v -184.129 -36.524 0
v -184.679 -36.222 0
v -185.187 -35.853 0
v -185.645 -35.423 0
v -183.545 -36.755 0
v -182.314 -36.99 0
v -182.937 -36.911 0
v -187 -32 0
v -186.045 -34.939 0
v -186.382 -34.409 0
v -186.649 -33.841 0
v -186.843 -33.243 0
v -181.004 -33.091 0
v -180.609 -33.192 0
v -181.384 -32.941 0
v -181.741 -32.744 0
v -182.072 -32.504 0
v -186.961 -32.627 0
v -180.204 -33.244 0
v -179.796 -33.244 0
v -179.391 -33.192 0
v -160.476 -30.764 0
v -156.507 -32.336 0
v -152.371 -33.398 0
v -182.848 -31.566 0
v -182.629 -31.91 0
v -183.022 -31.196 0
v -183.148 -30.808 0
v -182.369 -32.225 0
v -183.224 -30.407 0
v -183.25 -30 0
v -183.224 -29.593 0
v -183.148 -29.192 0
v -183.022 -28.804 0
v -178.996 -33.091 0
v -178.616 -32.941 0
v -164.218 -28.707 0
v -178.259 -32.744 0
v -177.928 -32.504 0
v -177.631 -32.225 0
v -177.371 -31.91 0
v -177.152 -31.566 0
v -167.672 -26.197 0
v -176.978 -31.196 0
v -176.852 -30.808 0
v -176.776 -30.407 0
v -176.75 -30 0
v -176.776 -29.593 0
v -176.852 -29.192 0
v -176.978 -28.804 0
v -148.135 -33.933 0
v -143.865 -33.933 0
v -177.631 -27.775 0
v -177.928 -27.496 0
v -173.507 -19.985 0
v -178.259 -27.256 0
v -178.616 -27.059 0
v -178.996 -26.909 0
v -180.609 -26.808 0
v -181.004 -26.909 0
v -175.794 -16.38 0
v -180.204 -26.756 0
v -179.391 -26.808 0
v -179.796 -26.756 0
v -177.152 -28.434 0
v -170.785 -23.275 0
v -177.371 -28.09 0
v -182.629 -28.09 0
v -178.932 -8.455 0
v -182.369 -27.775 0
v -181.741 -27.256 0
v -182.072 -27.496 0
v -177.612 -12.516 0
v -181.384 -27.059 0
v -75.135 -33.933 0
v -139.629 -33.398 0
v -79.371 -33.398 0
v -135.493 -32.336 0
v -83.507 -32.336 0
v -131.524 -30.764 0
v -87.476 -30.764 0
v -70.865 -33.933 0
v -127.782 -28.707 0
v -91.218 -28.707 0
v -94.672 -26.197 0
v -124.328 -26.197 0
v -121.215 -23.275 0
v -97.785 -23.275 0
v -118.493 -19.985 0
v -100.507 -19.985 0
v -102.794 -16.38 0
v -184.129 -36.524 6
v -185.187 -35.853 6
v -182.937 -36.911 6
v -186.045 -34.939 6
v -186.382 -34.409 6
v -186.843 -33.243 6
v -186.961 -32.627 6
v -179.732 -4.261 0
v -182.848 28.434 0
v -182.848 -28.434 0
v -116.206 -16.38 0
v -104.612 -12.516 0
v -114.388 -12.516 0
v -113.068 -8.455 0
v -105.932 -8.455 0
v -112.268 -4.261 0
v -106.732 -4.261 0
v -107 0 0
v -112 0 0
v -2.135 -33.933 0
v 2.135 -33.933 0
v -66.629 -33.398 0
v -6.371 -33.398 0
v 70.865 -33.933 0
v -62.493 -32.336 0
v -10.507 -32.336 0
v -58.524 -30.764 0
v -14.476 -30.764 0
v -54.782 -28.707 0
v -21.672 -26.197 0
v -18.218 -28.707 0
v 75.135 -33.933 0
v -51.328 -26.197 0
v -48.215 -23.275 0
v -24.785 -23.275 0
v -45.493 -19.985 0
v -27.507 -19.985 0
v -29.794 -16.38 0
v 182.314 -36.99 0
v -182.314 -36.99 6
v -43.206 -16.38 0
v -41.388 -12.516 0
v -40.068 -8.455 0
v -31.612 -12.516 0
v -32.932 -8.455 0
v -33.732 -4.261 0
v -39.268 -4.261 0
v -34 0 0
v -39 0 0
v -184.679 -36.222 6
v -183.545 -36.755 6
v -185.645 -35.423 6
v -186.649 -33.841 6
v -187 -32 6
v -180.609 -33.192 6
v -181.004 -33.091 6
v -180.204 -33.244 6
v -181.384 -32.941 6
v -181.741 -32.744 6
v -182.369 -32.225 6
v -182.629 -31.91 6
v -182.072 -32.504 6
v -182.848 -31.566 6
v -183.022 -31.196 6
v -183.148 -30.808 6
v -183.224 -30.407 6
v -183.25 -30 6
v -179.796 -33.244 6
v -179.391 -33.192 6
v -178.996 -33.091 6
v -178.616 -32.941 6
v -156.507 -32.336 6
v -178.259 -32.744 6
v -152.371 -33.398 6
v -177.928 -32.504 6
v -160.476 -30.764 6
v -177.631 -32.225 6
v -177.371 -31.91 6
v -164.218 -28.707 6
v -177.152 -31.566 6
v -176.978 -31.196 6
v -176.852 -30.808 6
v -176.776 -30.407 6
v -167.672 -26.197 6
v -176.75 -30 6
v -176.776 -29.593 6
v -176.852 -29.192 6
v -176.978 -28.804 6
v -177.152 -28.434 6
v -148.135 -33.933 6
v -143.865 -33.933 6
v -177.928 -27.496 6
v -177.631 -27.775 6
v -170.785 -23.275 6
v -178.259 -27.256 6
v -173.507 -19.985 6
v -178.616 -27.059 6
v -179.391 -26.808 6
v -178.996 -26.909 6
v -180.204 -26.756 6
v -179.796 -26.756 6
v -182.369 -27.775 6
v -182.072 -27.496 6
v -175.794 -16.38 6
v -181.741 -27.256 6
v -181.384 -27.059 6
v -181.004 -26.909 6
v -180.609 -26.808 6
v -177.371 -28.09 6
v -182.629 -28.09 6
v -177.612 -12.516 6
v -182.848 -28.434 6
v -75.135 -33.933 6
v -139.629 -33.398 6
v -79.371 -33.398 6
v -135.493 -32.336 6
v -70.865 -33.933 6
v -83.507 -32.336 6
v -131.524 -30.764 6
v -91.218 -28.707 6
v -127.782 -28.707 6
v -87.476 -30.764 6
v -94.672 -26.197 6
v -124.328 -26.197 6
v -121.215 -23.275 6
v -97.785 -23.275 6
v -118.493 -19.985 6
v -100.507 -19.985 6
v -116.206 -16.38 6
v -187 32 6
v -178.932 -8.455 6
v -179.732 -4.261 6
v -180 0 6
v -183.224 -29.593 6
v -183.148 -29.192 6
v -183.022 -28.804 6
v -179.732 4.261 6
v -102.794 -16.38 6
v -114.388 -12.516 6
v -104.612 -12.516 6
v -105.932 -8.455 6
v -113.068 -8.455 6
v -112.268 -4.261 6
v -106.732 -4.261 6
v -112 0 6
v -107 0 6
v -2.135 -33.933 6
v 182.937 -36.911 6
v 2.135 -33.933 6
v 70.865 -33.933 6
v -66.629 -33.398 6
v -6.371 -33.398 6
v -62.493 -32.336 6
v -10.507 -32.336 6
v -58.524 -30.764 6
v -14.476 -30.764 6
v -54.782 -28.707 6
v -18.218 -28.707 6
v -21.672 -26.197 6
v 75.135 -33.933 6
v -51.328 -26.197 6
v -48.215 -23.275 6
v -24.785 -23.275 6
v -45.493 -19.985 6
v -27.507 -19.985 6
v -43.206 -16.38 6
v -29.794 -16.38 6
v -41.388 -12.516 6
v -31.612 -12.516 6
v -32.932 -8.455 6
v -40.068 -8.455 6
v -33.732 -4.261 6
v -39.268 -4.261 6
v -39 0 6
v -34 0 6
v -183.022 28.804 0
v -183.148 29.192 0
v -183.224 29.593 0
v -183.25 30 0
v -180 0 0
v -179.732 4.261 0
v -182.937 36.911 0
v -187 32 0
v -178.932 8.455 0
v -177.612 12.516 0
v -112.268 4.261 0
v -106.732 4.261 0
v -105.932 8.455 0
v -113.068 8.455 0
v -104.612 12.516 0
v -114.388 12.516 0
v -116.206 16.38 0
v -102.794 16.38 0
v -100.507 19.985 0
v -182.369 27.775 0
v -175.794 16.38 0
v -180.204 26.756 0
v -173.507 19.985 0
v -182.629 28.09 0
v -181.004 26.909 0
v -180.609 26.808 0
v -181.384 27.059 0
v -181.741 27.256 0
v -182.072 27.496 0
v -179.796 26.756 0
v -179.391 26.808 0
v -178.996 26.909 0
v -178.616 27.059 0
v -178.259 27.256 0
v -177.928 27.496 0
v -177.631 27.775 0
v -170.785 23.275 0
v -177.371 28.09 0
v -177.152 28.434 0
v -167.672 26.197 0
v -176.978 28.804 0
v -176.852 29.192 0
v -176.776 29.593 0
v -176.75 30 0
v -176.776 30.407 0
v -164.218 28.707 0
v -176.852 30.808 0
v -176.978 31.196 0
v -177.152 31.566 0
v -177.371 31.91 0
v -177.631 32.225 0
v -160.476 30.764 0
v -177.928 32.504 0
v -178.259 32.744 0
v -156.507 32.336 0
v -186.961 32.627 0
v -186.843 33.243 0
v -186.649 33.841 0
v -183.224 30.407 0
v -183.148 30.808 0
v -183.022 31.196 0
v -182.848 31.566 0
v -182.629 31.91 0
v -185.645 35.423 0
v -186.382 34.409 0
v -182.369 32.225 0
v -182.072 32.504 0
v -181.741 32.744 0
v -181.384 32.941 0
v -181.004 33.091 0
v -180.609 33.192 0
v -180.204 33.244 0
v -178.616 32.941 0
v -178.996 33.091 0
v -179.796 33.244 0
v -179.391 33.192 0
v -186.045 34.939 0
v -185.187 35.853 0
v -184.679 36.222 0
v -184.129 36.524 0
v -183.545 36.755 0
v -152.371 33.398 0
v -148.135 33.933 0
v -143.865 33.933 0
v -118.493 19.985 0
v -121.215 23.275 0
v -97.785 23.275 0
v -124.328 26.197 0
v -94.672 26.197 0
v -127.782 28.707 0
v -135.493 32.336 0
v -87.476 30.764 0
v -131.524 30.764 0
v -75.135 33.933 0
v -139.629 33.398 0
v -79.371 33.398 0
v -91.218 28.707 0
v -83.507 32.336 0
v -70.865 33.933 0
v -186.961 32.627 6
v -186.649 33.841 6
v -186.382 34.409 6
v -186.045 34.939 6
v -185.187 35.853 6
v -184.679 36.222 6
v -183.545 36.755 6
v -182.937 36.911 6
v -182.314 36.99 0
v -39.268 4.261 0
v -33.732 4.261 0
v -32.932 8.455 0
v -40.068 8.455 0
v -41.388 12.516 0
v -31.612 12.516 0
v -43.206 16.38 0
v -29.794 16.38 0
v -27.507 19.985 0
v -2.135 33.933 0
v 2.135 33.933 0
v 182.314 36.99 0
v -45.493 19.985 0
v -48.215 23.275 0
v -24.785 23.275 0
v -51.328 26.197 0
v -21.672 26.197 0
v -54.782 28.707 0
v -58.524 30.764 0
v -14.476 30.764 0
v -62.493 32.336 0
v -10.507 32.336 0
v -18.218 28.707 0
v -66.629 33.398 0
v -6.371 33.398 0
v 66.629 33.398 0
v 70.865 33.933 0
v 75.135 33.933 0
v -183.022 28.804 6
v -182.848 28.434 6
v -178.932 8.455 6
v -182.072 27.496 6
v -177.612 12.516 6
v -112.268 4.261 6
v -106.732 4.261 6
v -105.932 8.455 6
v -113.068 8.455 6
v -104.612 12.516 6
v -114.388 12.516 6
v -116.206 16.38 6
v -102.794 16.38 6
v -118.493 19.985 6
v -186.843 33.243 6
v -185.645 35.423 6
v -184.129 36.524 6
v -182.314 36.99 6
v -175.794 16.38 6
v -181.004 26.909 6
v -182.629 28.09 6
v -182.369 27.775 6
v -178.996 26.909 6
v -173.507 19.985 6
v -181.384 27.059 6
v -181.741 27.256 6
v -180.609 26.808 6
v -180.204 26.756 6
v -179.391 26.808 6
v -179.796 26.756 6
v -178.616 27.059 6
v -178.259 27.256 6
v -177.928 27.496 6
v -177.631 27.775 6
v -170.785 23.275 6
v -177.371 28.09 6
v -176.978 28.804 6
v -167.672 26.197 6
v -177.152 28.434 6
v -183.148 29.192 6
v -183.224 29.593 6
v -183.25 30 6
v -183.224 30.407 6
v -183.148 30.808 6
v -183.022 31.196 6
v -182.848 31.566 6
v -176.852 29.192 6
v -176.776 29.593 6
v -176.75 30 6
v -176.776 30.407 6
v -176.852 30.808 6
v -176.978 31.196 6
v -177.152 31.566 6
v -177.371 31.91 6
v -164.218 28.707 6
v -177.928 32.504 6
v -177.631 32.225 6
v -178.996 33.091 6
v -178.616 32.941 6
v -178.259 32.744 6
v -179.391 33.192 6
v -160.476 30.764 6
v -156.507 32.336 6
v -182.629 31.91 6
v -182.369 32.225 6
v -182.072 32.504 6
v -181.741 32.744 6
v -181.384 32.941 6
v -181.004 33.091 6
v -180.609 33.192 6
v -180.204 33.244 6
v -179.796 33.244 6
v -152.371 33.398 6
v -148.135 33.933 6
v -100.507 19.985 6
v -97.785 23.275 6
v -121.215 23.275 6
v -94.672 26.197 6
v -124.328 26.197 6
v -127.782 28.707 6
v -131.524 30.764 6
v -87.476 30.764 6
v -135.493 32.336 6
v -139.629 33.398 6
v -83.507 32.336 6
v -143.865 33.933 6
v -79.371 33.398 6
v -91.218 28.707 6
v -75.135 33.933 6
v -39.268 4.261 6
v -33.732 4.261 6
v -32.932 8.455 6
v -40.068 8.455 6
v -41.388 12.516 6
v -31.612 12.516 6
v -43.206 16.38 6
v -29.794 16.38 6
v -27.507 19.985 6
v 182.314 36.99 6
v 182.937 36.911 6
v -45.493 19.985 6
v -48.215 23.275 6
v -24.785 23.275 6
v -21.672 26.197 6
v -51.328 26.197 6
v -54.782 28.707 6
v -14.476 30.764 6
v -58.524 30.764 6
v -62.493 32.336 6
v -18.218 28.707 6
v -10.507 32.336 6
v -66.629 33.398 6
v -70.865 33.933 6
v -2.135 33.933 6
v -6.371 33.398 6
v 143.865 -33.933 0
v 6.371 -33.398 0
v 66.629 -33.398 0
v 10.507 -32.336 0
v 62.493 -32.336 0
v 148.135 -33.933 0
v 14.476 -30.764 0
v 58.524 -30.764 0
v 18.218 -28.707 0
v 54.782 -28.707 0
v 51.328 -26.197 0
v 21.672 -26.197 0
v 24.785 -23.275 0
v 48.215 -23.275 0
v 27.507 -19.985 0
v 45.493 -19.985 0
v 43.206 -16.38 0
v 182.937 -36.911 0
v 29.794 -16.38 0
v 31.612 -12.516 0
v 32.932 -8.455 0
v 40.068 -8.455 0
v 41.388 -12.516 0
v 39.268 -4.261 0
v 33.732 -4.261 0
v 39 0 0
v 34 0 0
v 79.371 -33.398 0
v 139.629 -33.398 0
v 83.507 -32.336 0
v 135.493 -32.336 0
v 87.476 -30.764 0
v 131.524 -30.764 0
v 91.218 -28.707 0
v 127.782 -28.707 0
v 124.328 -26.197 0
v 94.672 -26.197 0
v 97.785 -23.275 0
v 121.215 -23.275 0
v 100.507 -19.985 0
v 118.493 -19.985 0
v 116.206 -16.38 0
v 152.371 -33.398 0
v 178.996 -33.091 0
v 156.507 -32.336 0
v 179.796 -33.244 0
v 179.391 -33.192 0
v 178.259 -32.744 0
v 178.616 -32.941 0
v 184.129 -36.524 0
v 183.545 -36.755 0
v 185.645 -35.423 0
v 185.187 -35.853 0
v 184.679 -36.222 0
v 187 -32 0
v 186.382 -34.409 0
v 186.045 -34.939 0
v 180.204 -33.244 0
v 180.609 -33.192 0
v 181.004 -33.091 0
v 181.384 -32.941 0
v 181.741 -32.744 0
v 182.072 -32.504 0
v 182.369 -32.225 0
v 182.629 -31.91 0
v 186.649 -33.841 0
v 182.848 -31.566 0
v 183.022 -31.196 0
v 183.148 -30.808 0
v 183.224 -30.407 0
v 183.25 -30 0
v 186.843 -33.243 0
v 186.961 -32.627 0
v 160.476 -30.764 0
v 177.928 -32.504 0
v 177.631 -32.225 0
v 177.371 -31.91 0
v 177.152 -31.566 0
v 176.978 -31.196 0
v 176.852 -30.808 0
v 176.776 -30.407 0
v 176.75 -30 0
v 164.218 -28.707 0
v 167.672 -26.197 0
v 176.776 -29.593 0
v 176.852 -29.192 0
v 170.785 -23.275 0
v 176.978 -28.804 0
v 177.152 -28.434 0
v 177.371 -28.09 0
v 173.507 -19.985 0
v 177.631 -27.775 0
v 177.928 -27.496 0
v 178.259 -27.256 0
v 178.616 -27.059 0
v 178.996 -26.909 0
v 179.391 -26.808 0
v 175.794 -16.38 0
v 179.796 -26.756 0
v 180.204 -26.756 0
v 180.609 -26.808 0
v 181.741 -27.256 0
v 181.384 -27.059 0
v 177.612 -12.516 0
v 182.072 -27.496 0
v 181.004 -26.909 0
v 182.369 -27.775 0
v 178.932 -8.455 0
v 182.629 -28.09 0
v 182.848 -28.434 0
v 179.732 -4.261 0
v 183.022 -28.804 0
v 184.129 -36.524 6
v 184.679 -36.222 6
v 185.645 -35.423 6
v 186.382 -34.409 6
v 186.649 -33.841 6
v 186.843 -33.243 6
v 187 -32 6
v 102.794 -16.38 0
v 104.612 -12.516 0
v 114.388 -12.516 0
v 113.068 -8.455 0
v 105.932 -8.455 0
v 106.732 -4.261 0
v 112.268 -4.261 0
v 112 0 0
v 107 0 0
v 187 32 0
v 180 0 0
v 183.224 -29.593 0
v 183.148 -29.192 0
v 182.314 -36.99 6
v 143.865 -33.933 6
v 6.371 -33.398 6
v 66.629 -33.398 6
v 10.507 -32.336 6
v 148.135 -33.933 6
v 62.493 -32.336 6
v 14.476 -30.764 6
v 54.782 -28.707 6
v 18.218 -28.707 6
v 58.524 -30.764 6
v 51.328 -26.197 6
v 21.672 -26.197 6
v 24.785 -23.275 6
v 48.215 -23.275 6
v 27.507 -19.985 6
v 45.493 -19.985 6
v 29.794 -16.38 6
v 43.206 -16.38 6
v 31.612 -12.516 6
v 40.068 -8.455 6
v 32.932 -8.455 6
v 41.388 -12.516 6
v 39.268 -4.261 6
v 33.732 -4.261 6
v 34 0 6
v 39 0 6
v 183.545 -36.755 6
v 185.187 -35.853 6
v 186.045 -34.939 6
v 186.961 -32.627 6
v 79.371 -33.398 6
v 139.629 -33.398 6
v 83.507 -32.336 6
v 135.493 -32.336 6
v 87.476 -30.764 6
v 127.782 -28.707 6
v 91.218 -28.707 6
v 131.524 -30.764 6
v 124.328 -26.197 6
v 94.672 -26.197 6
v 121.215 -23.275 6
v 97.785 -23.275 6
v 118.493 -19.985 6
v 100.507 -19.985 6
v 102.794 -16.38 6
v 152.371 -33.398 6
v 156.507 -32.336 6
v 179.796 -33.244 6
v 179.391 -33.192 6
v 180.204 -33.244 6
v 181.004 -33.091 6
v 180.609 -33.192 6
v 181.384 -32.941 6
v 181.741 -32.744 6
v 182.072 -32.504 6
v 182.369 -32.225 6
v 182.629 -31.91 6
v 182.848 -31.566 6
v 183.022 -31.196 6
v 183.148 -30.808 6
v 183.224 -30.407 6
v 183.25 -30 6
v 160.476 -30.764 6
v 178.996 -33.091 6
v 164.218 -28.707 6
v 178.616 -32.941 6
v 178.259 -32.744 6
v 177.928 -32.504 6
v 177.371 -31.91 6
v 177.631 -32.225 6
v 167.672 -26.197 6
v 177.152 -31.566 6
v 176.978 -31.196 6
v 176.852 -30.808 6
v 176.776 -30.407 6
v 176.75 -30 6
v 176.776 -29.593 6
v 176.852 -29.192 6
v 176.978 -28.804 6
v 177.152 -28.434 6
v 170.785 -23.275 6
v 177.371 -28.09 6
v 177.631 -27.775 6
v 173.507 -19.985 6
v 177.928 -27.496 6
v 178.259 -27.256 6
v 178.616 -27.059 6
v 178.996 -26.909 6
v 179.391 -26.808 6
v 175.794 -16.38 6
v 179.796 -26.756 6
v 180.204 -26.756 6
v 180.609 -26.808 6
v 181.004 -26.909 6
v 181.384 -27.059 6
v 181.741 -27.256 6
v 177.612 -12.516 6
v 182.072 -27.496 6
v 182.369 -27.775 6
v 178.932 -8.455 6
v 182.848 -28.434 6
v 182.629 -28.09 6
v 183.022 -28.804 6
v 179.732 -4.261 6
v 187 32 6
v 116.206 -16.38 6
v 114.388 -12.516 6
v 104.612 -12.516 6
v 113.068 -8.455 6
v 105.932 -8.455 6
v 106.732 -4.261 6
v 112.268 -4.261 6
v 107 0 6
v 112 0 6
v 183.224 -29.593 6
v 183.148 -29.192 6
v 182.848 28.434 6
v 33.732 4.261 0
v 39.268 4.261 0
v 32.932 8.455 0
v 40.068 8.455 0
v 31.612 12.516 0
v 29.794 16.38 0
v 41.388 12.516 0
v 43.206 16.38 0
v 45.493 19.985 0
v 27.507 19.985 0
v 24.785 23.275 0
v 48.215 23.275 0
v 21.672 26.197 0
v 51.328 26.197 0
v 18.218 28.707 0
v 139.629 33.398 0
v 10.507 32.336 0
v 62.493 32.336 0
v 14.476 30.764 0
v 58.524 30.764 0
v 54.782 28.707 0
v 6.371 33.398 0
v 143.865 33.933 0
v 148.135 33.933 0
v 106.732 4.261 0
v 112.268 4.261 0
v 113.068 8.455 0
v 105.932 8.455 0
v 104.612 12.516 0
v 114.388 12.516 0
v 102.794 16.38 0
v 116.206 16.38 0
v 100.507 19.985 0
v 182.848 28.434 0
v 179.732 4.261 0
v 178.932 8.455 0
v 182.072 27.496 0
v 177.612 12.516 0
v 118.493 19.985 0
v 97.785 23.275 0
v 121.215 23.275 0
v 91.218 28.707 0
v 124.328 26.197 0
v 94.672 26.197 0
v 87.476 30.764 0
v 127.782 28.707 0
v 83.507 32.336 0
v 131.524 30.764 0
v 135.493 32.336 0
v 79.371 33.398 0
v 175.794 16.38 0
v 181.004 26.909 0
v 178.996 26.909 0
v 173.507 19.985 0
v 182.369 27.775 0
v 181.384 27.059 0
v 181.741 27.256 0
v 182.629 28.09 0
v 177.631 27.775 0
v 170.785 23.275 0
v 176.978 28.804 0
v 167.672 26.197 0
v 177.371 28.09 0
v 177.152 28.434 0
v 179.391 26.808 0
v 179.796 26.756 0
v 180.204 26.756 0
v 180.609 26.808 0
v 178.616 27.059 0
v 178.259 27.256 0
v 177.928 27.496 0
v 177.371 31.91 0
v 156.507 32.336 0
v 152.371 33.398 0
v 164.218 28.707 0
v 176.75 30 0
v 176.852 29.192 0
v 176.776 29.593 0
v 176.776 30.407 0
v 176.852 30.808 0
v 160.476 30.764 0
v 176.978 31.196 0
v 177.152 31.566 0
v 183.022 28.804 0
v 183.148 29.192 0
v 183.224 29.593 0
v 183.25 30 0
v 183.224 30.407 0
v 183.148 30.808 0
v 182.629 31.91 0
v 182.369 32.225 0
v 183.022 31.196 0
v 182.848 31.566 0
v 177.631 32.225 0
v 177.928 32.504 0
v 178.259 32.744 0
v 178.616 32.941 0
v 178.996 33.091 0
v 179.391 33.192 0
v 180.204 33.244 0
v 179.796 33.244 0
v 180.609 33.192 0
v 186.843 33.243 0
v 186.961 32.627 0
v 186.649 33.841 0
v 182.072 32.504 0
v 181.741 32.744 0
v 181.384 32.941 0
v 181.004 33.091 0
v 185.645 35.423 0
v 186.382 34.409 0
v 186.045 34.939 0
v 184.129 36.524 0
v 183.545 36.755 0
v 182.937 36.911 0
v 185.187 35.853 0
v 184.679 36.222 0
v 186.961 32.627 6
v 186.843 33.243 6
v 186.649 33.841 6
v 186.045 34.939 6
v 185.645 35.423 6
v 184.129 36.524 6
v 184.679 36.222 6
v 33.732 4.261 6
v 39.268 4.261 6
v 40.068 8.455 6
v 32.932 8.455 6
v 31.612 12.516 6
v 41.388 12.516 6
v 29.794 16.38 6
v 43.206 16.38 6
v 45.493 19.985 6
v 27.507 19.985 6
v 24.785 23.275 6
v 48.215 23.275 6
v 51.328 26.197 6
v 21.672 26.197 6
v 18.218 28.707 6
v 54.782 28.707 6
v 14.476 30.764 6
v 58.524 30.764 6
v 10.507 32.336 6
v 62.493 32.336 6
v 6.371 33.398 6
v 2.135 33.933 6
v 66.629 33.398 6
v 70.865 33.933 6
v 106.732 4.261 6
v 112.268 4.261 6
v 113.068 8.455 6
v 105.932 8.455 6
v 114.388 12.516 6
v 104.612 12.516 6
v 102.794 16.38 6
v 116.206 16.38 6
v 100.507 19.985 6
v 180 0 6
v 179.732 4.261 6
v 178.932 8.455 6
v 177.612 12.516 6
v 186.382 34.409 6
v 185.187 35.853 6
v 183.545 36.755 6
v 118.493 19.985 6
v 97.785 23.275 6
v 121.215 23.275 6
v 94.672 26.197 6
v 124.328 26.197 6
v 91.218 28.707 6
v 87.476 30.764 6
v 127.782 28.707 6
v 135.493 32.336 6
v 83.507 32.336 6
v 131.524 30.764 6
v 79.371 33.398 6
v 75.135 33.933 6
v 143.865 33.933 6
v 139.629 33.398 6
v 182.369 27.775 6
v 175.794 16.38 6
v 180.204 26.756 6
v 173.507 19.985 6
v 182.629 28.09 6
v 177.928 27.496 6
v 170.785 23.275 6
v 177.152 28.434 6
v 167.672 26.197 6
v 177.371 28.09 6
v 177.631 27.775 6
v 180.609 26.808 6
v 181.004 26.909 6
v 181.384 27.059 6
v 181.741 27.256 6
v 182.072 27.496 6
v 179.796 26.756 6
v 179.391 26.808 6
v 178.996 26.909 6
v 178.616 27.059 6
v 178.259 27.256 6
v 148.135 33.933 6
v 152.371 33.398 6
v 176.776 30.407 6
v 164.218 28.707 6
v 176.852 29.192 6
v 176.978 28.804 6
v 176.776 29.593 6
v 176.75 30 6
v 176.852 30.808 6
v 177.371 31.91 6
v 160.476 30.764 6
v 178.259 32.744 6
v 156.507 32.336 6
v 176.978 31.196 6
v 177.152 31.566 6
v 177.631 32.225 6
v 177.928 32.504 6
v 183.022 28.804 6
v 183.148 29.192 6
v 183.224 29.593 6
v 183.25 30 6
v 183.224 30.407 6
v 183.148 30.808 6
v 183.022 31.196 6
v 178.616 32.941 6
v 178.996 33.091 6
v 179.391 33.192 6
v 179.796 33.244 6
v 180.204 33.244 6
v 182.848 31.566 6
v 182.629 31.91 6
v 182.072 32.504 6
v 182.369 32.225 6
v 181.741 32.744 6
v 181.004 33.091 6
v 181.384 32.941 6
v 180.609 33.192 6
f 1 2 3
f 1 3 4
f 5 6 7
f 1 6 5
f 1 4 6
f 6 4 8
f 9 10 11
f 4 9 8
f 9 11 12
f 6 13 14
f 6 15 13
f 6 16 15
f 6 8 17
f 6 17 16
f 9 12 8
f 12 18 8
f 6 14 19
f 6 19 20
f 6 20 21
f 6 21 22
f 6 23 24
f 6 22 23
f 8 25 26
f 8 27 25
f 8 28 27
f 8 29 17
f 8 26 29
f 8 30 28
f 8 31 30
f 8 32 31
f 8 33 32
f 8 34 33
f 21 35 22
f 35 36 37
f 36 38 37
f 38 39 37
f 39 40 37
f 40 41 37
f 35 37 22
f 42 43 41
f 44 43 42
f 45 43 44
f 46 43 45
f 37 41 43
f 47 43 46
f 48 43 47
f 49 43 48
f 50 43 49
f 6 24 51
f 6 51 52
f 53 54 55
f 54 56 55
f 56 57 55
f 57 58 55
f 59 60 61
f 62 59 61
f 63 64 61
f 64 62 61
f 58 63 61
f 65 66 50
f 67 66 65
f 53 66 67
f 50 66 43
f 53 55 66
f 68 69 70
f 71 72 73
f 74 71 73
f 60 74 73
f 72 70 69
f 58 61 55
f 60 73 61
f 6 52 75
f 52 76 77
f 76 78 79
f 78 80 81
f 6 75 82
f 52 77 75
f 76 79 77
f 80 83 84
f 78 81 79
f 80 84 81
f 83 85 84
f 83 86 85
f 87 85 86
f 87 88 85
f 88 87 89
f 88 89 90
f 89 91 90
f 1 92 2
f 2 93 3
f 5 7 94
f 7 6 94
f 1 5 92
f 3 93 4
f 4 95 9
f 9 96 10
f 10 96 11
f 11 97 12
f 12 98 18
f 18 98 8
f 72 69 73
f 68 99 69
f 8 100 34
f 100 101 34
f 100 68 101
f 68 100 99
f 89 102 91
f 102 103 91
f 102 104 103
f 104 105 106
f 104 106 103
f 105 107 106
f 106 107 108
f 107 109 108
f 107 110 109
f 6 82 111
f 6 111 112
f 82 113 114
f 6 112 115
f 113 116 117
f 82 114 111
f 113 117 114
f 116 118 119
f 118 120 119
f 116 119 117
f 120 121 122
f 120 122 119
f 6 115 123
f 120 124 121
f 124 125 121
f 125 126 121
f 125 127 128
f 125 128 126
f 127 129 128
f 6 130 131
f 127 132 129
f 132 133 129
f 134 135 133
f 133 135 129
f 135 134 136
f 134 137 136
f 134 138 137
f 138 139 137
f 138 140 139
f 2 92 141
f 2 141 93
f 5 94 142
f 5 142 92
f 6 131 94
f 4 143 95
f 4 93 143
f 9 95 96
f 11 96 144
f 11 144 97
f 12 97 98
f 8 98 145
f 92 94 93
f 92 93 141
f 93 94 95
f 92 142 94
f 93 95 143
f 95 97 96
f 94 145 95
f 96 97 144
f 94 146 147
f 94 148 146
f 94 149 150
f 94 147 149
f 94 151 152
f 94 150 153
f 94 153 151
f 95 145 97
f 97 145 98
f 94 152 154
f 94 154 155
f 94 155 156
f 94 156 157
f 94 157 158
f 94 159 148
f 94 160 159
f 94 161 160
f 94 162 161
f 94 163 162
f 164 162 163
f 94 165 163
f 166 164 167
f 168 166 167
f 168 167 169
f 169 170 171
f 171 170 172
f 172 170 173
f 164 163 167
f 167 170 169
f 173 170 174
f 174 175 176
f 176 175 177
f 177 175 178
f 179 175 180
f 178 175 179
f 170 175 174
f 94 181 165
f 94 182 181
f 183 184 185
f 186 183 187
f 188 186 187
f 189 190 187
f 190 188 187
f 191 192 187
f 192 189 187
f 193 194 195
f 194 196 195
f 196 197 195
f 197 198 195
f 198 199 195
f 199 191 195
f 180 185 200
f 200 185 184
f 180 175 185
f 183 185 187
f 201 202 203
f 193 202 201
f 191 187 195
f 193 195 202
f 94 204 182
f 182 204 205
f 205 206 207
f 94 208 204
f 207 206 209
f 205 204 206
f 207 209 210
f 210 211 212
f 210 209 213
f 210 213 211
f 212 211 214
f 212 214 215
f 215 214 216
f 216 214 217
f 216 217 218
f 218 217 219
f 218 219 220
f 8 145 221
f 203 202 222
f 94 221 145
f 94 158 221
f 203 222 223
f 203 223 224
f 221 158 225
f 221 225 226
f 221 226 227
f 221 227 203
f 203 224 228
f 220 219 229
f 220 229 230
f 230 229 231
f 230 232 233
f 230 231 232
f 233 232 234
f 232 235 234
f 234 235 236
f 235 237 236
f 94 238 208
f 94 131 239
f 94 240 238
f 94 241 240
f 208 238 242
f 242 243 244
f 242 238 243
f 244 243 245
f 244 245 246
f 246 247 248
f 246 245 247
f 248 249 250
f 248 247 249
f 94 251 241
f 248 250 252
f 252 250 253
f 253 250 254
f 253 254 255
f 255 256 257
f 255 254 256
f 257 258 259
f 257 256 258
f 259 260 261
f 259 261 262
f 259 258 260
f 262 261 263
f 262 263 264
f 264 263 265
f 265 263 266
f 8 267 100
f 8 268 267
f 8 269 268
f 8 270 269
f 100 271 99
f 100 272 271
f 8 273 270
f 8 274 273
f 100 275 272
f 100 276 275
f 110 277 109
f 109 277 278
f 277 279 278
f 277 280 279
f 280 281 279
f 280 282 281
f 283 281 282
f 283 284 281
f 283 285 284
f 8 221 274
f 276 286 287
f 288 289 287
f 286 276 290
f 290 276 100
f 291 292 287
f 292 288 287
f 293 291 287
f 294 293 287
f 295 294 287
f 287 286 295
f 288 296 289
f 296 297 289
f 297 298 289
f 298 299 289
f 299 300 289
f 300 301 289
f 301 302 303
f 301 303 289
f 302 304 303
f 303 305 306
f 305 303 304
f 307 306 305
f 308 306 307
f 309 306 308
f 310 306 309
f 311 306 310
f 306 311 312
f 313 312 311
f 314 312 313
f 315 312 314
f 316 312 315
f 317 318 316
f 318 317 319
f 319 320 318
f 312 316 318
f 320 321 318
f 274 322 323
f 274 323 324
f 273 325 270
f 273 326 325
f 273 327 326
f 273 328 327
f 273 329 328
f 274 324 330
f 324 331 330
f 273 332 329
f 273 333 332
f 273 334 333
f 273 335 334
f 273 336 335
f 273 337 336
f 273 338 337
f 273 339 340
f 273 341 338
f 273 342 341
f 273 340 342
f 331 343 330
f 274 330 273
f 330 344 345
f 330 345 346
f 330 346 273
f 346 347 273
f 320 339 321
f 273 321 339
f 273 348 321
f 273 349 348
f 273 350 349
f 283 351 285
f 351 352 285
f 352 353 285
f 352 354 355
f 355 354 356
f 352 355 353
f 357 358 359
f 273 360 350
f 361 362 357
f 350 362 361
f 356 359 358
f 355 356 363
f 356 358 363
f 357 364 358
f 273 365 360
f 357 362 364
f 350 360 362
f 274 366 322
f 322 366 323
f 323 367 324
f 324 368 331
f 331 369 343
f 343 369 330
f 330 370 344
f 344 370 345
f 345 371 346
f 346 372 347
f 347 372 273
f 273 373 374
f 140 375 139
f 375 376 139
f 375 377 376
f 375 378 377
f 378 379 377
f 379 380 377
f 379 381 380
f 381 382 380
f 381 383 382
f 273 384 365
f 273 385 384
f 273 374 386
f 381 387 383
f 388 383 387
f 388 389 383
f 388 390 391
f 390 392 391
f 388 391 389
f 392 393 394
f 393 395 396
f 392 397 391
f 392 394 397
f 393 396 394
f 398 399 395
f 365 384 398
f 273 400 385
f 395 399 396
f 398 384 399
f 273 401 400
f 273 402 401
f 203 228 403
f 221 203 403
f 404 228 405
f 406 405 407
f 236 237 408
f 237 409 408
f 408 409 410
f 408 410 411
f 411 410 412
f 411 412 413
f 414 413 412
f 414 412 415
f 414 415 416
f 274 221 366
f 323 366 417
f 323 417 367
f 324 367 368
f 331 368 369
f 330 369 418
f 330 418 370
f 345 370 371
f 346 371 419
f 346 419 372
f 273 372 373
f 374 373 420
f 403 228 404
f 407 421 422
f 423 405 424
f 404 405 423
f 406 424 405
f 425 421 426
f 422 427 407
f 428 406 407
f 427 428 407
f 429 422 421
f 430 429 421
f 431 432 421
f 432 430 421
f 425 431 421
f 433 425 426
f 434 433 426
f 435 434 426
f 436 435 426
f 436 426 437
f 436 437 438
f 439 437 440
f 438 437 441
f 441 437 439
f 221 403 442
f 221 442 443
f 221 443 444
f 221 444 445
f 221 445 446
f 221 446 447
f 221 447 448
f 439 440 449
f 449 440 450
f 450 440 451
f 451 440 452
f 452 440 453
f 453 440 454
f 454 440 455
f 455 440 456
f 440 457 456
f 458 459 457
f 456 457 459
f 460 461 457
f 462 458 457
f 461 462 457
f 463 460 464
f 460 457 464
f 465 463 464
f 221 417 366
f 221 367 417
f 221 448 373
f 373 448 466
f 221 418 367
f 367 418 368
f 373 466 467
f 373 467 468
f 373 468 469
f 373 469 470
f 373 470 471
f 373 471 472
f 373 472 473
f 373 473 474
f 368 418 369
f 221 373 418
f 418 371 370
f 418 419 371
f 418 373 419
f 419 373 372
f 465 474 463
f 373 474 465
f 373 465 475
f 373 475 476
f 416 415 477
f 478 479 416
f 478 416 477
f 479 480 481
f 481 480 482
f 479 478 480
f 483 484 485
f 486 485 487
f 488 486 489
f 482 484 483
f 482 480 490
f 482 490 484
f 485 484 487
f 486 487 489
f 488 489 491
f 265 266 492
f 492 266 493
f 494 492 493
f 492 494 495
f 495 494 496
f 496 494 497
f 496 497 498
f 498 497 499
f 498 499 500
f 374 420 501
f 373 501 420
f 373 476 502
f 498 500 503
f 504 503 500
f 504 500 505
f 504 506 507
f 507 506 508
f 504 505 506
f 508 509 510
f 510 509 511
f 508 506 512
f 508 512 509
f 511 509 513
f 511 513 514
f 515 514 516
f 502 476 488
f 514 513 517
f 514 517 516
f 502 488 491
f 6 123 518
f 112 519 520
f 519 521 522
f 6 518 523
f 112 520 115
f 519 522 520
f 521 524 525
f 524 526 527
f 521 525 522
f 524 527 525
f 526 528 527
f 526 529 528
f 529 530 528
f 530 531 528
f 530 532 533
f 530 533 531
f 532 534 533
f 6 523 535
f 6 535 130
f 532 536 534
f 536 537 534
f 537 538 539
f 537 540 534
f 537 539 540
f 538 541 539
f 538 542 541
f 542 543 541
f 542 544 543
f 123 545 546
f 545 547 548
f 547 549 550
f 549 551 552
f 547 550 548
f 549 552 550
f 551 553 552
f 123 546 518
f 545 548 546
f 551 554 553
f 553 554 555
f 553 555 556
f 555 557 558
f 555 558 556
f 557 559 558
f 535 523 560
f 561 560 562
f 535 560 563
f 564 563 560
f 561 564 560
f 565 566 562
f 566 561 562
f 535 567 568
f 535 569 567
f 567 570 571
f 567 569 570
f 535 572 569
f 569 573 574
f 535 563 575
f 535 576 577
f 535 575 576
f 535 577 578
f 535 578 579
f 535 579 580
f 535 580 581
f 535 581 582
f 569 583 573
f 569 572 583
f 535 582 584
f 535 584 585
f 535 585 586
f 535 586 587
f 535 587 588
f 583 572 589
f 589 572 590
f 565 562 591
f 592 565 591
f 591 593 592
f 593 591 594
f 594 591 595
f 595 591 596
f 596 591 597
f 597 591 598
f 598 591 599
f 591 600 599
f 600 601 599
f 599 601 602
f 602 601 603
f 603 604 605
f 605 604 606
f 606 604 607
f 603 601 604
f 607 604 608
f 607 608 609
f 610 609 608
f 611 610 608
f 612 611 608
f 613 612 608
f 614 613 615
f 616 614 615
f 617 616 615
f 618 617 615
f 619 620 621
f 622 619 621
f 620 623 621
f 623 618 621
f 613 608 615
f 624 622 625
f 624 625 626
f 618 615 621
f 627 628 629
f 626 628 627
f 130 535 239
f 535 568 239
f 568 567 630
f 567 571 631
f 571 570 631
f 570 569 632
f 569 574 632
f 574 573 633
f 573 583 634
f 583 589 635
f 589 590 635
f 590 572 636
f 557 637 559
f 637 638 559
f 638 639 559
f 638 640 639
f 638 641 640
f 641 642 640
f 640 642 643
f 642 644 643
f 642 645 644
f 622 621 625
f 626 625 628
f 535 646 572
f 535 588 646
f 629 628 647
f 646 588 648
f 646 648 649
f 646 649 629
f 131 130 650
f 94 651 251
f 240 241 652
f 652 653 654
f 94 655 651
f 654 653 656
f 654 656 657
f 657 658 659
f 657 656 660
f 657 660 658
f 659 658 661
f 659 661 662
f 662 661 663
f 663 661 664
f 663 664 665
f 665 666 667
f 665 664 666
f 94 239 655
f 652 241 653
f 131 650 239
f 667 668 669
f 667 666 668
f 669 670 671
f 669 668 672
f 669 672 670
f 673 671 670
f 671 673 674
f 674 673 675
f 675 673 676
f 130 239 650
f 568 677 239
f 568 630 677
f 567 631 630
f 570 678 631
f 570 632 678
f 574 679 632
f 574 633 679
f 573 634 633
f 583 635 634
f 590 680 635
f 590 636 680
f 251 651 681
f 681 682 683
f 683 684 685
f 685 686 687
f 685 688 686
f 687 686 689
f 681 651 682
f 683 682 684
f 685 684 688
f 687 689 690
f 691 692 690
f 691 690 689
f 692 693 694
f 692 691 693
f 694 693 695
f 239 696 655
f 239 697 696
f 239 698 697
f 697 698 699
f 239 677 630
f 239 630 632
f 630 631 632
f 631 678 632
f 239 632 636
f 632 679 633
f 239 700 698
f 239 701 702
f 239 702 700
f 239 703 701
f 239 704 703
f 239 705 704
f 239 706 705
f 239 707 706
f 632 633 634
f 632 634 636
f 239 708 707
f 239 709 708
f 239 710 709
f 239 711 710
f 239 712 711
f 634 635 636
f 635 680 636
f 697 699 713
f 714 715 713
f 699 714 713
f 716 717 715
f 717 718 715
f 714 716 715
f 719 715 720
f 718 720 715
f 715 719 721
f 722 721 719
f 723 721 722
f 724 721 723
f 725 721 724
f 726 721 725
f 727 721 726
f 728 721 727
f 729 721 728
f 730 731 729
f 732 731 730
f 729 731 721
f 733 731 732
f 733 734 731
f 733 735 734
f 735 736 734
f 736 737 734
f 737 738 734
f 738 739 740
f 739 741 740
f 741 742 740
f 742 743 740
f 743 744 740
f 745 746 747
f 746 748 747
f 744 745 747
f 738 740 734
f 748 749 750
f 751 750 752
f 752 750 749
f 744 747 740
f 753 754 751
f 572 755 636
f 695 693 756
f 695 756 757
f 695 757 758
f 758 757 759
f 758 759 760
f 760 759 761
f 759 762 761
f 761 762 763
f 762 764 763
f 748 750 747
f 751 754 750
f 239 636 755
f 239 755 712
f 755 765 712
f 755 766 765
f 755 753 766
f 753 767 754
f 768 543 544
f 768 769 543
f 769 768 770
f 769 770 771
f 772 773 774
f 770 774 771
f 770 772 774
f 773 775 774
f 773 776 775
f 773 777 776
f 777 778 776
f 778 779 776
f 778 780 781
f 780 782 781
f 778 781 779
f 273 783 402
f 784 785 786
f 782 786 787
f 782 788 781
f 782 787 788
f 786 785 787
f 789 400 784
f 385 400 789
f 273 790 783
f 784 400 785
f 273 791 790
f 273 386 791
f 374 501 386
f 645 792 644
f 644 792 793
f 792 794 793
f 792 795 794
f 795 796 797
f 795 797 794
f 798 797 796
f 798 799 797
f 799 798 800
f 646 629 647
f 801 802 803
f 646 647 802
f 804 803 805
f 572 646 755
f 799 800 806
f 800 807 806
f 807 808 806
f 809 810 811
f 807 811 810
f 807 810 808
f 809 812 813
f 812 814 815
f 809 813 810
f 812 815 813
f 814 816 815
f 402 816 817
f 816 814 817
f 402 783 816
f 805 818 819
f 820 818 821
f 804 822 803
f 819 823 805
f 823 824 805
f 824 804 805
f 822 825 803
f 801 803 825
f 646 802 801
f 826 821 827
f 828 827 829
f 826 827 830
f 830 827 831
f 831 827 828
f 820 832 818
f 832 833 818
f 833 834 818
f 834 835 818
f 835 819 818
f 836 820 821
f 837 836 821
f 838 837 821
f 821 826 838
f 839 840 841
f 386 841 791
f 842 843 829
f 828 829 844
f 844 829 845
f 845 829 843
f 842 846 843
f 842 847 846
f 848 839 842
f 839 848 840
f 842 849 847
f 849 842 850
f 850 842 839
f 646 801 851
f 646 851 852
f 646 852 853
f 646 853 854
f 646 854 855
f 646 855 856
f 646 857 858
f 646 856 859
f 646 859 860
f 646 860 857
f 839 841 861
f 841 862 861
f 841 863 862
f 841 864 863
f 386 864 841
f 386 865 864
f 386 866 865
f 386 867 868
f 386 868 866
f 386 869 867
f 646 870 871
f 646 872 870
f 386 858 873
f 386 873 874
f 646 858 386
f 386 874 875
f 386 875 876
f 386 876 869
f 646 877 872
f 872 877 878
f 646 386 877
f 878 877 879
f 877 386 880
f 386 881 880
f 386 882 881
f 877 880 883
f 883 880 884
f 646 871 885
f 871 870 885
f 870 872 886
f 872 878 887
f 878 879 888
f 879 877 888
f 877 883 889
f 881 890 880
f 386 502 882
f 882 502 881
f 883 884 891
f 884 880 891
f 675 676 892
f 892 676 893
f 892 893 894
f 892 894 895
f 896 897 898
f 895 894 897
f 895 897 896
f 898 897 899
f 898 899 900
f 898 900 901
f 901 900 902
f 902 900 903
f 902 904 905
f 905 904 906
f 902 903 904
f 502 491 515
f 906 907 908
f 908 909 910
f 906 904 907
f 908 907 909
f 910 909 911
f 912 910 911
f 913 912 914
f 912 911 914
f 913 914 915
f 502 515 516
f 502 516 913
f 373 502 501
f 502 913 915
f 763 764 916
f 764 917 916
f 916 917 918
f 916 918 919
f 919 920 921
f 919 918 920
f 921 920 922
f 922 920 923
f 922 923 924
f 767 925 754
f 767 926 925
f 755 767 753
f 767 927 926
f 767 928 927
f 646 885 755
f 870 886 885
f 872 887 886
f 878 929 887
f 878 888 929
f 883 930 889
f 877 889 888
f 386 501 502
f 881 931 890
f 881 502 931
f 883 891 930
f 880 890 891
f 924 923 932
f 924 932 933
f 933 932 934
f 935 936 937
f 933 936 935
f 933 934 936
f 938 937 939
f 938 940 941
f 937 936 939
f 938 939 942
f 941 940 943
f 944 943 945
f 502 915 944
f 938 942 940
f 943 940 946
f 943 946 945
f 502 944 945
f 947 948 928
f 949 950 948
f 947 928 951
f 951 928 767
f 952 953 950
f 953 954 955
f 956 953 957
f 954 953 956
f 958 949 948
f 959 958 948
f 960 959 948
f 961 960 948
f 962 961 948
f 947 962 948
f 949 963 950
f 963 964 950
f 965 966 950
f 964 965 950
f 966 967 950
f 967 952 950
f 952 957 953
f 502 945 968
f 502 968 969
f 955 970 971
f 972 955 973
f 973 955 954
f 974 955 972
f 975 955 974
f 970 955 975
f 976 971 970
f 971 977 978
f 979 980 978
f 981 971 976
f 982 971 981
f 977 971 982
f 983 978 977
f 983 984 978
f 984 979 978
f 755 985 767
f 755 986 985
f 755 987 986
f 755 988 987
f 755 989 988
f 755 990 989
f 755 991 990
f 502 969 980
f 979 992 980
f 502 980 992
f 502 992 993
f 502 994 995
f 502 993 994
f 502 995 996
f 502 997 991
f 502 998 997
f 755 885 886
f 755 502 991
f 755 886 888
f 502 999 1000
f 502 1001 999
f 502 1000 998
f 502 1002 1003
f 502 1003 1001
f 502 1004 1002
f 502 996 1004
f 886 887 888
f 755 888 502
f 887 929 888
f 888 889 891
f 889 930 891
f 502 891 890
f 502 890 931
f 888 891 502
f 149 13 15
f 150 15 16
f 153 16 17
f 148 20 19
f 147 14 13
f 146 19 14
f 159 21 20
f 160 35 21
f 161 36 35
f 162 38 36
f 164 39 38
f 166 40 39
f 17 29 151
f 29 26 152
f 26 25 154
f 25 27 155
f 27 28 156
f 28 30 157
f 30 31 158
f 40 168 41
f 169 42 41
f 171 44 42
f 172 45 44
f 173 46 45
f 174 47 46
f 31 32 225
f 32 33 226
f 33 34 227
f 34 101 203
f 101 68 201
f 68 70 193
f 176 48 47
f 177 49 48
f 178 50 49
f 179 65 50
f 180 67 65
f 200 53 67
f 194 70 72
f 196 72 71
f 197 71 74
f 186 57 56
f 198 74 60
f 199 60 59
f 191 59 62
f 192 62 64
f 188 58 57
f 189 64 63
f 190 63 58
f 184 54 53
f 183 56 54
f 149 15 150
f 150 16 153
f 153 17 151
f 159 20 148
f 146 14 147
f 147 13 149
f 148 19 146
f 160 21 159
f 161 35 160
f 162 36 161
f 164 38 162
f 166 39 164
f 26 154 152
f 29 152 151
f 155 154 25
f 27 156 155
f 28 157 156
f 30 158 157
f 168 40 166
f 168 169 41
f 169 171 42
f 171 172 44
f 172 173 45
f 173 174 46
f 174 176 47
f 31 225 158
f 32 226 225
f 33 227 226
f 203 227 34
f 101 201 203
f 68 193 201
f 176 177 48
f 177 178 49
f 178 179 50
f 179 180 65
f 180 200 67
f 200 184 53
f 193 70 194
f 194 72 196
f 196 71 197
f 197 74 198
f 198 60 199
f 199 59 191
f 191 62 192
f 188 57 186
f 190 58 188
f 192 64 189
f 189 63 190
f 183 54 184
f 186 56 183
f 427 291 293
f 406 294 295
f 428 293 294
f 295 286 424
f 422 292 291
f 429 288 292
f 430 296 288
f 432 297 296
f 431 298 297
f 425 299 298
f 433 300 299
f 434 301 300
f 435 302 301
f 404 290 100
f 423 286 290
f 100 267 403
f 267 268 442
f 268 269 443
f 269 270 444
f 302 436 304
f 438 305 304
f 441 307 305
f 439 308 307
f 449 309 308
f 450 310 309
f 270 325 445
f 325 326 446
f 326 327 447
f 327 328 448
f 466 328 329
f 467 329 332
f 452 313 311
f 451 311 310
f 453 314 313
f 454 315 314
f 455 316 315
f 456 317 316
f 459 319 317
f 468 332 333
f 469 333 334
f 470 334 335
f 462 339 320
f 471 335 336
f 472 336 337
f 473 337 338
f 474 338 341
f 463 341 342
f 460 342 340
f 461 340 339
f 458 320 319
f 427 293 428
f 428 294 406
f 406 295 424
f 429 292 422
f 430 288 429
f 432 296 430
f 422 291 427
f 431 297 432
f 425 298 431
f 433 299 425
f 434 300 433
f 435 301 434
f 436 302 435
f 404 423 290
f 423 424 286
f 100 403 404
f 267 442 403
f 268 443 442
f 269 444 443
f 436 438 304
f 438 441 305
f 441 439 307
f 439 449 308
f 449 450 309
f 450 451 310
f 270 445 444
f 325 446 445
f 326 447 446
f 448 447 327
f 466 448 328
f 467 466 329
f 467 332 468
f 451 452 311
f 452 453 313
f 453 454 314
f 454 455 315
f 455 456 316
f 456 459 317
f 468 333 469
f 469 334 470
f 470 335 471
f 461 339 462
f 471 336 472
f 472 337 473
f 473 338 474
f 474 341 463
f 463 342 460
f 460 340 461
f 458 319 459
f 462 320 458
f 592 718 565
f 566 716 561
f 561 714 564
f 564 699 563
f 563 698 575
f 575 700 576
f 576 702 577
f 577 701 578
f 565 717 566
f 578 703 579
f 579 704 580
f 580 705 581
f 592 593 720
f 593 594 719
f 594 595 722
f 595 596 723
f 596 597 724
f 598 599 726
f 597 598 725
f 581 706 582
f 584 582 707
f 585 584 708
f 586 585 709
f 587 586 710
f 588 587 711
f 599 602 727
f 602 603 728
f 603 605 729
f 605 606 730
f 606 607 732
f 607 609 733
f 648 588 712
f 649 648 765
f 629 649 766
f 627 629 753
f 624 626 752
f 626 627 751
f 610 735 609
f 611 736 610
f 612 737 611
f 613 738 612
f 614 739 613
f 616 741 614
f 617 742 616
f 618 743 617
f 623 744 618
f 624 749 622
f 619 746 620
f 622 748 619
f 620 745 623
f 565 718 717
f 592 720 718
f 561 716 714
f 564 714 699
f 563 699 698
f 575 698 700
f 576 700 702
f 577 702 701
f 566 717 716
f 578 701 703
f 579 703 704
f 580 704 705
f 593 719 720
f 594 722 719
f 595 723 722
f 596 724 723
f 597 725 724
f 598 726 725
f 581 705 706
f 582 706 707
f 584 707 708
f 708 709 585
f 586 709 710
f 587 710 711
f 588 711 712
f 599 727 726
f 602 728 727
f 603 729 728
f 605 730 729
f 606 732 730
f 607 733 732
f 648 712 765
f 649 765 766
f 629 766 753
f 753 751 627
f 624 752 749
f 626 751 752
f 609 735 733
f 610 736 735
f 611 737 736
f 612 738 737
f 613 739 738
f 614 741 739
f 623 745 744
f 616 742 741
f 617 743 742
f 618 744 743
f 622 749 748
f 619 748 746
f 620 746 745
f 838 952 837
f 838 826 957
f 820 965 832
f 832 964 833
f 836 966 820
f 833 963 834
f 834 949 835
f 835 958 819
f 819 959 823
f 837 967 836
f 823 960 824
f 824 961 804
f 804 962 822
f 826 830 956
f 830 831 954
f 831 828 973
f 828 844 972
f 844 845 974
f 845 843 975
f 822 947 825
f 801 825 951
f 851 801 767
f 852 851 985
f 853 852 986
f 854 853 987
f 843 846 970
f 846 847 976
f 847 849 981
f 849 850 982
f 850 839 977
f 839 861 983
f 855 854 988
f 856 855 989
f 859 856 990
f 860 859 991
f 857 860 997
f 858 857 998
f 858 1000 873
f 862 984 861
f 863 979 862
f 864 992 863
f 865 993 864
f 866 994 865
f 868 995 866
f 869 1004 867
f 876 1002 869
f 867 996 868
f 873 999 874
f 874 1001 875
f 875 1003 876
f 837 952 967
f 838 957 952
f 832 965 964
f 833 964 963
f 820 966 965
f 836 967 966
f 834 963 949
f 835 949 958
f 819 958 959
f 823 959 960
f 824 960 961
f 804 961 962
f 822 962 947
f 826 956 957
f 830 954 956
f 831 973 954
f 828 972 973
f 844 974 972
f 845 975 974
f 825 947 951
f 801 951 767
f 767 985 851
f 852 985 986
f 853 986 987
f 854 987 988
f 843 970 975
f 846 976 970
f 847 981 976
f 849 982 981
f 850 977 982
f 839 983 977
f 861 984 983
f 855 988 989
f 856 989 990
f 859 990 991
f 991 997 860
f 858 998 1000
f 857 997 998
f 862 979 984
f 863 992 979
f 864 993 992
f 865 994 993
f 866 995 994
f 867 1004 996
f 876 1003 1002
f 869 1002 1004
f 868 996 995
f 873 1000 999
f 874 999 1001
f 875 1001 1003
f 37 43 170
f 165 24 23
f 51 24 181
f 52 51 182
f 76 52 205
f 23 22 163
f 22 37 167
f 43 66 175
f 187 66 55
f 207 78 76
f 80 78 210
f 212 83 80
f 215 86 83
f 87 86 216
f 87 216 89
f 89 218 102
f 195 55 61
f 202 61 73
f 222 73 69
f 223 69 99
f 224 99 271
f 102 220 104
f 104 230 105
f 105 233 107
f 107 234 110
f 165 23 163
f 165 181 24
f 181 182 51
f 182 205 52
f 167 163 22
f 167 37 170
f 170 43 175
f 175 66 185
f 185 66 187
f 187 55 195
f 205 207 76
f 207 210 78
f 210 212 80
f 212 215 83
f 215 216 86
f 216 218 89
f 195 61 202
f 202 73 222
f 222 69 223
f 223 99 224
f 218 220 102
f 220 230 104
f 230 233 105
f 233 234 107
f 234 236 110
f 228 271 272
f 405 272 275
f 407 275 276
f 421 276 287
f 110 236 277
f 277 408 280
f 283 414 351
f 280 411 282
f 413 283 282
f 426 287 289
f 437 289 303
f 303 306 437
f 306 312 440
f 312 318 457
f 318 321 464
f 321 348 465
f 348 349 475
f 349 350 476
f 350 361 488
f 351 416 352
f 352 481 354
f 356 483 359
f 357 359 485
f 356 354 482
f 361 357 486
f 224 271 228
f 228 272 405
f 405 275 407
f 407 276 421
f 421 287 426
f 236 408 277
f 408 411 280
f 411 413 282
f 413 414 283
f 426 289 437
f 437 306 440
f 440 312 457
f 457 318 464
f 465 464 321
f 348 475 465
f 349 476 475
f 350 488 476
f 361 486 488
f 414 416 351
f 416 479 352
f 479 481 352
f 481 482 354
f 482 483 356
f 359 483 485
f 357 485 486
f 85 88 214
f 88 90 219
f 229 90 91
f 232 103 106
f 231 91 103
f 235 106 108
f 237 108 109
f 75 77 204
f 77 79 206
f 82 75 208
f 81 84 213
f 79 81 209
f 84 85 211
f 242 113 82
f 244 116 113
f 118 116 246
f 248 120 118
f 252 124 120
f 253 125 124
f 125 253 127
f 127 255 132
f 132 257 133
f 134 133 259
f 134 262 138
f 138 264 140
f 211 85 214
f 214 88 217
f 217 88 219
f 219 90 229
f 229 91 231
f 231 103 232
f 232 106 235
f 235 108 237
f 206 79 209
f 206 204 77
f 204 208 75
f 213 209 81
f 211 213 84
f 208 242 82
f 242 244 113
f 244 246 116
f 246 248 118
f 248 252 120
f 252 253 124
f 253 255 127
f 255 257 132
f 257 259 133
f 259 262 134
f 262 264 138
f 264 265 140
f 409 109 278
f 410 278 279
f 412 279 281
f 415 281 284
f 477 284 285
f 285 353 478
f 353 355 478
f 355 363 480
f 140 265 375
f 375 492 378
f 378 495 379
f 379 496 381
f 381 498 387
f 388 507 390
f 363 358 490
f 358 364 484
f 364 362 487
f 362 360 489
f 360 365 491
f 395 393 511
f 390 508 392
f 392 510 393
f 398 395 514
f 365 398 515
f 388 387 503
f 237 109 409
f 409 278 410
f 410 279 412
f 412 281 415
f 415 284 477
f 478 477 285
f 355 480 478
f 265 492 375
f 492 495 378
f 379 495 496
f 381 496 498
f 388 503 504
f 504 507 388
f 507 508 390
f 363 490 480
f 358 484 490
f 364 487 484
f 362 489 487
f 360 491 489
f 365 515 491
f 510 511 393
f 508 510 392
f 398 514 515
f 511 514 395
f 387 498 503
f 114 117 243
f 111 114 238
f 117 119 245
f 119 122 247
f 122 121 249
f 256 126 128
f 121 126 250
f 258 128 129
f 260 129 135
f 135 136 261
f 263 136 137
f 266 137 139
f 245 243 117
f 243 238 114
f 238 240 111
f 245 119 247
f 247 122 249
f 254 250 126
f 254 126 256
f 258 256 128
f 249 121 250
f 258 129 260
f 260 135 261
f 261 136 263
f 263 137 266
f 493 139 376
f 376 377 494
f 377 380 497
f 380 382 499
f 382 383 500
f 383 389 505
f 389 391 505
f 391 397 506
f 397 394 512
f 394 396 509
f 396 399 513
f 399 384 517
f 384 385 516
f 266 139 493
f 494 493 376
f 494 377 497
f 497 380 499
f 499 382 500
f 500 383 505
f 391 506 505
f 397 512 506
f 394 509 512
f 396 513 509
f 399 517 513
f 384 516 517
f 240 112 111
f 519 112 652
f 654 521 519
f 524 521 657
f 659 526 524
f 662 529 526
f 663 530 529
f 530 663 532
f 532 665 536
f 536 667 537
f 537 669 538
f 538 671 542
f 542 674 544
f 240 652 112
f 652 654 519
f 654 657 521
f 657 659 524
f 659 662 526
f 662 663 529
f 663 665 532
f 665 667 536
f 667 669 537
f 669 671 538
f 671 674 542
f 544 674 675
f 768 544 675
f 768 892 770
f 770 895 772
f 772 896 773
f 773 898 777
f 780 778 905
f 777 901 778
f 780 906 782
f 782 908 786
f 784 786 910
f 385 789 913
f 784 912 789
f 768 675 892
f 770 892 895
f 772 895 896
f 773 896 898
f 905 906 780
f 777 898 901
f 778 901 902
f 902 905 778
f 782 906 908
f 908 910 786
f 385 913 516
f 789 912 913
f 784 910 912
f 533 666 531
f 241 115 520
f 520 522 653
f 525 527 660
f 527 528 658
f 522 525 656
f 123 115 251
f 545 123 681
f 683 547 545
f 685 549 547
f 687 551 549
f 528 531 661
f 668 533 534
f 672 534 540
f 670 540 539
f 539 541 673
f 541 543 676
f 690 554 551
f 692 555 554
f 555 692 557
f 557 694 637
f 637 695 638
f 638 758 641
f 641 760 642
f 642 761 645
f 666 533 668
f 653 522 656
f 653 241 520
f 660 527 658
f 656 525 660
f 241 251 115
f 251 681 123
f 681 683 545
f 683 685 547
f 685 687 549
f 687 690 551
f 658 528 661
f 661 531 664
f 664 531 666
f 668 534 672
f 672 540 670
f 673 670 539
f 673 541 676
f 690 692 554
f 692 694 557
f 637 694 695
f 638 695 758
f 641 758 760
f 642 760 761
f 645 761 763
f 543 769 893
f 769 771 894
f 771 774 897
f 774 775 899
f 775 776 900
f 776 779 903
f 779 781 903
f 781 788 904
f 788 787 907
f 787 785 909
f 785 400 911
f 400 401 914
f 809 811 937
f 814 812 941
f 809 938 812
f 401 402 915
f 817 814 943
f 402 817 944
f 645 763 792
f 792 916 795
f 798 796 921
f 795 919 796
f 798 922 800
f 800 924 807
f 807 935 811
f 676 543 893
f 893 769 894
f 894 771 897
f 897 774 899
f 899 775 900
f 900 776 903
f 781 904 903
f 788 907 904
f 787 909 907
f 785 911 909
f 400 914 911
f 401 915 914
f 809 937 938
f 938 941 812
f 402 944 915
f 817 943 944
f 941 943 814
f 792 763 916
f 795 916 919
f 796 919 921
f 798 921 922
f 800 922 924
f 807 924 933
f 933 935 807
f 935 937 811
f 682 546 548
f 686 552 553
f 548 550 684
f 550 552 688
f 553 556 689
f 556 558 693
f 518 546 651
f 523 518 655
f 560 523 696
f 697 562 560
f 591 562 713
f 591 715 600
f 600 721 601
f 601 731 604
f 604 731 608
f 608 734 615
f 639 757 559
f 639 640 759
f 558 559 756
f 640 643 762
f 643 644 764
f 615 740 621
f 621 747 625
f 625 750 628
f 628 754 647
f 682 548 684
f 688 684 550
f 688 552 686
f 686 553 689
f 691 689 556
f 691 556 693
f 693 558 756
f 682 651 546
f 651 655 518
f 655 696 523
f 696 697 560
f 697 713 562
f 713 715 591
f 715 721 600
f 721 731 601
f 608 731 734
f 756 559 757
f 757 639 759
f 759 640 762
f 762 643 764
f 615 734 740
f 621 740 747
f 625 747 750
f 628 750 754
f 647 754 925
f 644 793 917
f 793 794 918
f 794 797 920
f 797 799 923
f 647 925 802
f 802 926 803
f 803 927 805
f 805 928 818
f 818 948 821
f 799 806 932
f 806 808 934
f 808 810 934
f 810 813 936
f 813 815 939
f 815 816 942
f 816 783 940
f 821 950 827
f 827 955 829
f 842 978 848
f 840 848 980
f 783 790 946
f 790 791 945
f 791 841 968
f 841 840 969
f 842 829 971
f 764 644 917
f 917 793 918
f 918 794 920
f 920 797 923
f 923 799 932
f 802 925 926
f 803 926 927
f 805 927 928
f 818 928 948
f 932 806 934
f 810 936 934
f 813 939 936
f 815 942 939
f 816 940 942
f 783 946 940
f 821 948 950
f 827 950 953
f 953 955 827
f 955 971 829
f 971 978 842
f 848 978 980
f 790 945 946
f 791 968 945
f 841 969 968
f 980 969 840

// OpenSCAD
$fn = 50;

difference() {
	union() {
		hull() {
			translate(v = [-182.0, 32.0, 0]) {
				cylinder(h = 6, r = 5);
			}
			translate(v = [182.0, 32.0, 0]) {
				cylinder(h = 6, r = 5);
			}
			translate(v = [-182.0, -32.0, 0]) {
				cylinder(h = 6, r = 5);
			}
			translate(v = [182.0, -32.0, 0]) {
				cylinder(h = 6, r = 5);
			}
		}
	}
	union() {
		translate(v = [-180.0, -30.0, -100.0]) {
			cylinder(h = 200, r = 3.25);
		}
		translate(v = [-180.0, 30.0, -100.0]) {
			cylinder(h = 200, r = 3.25);
		}
		translate(v = [180.0, -30.0, -100.0]) {
			cylinder(h = 200, r = 3.25);
		}
		translate(v = [180.0, 30.0, -100.0]) {
			cylinder(h = 200, r = 3.25);
		}
		translate(v = [-180.0, -30.0, -100.0]) {
			cylinder(h = 200, r = 1.8);
		}
		translate(v = [-180.0, 30.0, -100.0]) {
			cylinder(h = 200, r = 1.8);
		}
		translate(v = [180.0, -30.0, -100.0]) {
			cylinder(h = 200, r = 1.8);
		}
		translate(v = [180.0, 30.0, -100.0]) {
			cylinder(h = 200, r = 1.8);
		}
		translate(v = [-146.0, 0, 0.0]) {
			cylinder(h = 6, r = 34.0);
		}
		translate(v = [-73.0, 0, 0.0]) {
			cylinder(h = 6, r = 34.0);
		}
		cylinder(h = 6, r = 34.0);
		translate(v = [73.0, 0, 0.0]) {
			cylinder(h = 6, r = 34.0);
		}
		translate(v = [146.0, 0, 0.0]) {
			cylinder(h = 6, r = 34.0);
		}
	}
}
